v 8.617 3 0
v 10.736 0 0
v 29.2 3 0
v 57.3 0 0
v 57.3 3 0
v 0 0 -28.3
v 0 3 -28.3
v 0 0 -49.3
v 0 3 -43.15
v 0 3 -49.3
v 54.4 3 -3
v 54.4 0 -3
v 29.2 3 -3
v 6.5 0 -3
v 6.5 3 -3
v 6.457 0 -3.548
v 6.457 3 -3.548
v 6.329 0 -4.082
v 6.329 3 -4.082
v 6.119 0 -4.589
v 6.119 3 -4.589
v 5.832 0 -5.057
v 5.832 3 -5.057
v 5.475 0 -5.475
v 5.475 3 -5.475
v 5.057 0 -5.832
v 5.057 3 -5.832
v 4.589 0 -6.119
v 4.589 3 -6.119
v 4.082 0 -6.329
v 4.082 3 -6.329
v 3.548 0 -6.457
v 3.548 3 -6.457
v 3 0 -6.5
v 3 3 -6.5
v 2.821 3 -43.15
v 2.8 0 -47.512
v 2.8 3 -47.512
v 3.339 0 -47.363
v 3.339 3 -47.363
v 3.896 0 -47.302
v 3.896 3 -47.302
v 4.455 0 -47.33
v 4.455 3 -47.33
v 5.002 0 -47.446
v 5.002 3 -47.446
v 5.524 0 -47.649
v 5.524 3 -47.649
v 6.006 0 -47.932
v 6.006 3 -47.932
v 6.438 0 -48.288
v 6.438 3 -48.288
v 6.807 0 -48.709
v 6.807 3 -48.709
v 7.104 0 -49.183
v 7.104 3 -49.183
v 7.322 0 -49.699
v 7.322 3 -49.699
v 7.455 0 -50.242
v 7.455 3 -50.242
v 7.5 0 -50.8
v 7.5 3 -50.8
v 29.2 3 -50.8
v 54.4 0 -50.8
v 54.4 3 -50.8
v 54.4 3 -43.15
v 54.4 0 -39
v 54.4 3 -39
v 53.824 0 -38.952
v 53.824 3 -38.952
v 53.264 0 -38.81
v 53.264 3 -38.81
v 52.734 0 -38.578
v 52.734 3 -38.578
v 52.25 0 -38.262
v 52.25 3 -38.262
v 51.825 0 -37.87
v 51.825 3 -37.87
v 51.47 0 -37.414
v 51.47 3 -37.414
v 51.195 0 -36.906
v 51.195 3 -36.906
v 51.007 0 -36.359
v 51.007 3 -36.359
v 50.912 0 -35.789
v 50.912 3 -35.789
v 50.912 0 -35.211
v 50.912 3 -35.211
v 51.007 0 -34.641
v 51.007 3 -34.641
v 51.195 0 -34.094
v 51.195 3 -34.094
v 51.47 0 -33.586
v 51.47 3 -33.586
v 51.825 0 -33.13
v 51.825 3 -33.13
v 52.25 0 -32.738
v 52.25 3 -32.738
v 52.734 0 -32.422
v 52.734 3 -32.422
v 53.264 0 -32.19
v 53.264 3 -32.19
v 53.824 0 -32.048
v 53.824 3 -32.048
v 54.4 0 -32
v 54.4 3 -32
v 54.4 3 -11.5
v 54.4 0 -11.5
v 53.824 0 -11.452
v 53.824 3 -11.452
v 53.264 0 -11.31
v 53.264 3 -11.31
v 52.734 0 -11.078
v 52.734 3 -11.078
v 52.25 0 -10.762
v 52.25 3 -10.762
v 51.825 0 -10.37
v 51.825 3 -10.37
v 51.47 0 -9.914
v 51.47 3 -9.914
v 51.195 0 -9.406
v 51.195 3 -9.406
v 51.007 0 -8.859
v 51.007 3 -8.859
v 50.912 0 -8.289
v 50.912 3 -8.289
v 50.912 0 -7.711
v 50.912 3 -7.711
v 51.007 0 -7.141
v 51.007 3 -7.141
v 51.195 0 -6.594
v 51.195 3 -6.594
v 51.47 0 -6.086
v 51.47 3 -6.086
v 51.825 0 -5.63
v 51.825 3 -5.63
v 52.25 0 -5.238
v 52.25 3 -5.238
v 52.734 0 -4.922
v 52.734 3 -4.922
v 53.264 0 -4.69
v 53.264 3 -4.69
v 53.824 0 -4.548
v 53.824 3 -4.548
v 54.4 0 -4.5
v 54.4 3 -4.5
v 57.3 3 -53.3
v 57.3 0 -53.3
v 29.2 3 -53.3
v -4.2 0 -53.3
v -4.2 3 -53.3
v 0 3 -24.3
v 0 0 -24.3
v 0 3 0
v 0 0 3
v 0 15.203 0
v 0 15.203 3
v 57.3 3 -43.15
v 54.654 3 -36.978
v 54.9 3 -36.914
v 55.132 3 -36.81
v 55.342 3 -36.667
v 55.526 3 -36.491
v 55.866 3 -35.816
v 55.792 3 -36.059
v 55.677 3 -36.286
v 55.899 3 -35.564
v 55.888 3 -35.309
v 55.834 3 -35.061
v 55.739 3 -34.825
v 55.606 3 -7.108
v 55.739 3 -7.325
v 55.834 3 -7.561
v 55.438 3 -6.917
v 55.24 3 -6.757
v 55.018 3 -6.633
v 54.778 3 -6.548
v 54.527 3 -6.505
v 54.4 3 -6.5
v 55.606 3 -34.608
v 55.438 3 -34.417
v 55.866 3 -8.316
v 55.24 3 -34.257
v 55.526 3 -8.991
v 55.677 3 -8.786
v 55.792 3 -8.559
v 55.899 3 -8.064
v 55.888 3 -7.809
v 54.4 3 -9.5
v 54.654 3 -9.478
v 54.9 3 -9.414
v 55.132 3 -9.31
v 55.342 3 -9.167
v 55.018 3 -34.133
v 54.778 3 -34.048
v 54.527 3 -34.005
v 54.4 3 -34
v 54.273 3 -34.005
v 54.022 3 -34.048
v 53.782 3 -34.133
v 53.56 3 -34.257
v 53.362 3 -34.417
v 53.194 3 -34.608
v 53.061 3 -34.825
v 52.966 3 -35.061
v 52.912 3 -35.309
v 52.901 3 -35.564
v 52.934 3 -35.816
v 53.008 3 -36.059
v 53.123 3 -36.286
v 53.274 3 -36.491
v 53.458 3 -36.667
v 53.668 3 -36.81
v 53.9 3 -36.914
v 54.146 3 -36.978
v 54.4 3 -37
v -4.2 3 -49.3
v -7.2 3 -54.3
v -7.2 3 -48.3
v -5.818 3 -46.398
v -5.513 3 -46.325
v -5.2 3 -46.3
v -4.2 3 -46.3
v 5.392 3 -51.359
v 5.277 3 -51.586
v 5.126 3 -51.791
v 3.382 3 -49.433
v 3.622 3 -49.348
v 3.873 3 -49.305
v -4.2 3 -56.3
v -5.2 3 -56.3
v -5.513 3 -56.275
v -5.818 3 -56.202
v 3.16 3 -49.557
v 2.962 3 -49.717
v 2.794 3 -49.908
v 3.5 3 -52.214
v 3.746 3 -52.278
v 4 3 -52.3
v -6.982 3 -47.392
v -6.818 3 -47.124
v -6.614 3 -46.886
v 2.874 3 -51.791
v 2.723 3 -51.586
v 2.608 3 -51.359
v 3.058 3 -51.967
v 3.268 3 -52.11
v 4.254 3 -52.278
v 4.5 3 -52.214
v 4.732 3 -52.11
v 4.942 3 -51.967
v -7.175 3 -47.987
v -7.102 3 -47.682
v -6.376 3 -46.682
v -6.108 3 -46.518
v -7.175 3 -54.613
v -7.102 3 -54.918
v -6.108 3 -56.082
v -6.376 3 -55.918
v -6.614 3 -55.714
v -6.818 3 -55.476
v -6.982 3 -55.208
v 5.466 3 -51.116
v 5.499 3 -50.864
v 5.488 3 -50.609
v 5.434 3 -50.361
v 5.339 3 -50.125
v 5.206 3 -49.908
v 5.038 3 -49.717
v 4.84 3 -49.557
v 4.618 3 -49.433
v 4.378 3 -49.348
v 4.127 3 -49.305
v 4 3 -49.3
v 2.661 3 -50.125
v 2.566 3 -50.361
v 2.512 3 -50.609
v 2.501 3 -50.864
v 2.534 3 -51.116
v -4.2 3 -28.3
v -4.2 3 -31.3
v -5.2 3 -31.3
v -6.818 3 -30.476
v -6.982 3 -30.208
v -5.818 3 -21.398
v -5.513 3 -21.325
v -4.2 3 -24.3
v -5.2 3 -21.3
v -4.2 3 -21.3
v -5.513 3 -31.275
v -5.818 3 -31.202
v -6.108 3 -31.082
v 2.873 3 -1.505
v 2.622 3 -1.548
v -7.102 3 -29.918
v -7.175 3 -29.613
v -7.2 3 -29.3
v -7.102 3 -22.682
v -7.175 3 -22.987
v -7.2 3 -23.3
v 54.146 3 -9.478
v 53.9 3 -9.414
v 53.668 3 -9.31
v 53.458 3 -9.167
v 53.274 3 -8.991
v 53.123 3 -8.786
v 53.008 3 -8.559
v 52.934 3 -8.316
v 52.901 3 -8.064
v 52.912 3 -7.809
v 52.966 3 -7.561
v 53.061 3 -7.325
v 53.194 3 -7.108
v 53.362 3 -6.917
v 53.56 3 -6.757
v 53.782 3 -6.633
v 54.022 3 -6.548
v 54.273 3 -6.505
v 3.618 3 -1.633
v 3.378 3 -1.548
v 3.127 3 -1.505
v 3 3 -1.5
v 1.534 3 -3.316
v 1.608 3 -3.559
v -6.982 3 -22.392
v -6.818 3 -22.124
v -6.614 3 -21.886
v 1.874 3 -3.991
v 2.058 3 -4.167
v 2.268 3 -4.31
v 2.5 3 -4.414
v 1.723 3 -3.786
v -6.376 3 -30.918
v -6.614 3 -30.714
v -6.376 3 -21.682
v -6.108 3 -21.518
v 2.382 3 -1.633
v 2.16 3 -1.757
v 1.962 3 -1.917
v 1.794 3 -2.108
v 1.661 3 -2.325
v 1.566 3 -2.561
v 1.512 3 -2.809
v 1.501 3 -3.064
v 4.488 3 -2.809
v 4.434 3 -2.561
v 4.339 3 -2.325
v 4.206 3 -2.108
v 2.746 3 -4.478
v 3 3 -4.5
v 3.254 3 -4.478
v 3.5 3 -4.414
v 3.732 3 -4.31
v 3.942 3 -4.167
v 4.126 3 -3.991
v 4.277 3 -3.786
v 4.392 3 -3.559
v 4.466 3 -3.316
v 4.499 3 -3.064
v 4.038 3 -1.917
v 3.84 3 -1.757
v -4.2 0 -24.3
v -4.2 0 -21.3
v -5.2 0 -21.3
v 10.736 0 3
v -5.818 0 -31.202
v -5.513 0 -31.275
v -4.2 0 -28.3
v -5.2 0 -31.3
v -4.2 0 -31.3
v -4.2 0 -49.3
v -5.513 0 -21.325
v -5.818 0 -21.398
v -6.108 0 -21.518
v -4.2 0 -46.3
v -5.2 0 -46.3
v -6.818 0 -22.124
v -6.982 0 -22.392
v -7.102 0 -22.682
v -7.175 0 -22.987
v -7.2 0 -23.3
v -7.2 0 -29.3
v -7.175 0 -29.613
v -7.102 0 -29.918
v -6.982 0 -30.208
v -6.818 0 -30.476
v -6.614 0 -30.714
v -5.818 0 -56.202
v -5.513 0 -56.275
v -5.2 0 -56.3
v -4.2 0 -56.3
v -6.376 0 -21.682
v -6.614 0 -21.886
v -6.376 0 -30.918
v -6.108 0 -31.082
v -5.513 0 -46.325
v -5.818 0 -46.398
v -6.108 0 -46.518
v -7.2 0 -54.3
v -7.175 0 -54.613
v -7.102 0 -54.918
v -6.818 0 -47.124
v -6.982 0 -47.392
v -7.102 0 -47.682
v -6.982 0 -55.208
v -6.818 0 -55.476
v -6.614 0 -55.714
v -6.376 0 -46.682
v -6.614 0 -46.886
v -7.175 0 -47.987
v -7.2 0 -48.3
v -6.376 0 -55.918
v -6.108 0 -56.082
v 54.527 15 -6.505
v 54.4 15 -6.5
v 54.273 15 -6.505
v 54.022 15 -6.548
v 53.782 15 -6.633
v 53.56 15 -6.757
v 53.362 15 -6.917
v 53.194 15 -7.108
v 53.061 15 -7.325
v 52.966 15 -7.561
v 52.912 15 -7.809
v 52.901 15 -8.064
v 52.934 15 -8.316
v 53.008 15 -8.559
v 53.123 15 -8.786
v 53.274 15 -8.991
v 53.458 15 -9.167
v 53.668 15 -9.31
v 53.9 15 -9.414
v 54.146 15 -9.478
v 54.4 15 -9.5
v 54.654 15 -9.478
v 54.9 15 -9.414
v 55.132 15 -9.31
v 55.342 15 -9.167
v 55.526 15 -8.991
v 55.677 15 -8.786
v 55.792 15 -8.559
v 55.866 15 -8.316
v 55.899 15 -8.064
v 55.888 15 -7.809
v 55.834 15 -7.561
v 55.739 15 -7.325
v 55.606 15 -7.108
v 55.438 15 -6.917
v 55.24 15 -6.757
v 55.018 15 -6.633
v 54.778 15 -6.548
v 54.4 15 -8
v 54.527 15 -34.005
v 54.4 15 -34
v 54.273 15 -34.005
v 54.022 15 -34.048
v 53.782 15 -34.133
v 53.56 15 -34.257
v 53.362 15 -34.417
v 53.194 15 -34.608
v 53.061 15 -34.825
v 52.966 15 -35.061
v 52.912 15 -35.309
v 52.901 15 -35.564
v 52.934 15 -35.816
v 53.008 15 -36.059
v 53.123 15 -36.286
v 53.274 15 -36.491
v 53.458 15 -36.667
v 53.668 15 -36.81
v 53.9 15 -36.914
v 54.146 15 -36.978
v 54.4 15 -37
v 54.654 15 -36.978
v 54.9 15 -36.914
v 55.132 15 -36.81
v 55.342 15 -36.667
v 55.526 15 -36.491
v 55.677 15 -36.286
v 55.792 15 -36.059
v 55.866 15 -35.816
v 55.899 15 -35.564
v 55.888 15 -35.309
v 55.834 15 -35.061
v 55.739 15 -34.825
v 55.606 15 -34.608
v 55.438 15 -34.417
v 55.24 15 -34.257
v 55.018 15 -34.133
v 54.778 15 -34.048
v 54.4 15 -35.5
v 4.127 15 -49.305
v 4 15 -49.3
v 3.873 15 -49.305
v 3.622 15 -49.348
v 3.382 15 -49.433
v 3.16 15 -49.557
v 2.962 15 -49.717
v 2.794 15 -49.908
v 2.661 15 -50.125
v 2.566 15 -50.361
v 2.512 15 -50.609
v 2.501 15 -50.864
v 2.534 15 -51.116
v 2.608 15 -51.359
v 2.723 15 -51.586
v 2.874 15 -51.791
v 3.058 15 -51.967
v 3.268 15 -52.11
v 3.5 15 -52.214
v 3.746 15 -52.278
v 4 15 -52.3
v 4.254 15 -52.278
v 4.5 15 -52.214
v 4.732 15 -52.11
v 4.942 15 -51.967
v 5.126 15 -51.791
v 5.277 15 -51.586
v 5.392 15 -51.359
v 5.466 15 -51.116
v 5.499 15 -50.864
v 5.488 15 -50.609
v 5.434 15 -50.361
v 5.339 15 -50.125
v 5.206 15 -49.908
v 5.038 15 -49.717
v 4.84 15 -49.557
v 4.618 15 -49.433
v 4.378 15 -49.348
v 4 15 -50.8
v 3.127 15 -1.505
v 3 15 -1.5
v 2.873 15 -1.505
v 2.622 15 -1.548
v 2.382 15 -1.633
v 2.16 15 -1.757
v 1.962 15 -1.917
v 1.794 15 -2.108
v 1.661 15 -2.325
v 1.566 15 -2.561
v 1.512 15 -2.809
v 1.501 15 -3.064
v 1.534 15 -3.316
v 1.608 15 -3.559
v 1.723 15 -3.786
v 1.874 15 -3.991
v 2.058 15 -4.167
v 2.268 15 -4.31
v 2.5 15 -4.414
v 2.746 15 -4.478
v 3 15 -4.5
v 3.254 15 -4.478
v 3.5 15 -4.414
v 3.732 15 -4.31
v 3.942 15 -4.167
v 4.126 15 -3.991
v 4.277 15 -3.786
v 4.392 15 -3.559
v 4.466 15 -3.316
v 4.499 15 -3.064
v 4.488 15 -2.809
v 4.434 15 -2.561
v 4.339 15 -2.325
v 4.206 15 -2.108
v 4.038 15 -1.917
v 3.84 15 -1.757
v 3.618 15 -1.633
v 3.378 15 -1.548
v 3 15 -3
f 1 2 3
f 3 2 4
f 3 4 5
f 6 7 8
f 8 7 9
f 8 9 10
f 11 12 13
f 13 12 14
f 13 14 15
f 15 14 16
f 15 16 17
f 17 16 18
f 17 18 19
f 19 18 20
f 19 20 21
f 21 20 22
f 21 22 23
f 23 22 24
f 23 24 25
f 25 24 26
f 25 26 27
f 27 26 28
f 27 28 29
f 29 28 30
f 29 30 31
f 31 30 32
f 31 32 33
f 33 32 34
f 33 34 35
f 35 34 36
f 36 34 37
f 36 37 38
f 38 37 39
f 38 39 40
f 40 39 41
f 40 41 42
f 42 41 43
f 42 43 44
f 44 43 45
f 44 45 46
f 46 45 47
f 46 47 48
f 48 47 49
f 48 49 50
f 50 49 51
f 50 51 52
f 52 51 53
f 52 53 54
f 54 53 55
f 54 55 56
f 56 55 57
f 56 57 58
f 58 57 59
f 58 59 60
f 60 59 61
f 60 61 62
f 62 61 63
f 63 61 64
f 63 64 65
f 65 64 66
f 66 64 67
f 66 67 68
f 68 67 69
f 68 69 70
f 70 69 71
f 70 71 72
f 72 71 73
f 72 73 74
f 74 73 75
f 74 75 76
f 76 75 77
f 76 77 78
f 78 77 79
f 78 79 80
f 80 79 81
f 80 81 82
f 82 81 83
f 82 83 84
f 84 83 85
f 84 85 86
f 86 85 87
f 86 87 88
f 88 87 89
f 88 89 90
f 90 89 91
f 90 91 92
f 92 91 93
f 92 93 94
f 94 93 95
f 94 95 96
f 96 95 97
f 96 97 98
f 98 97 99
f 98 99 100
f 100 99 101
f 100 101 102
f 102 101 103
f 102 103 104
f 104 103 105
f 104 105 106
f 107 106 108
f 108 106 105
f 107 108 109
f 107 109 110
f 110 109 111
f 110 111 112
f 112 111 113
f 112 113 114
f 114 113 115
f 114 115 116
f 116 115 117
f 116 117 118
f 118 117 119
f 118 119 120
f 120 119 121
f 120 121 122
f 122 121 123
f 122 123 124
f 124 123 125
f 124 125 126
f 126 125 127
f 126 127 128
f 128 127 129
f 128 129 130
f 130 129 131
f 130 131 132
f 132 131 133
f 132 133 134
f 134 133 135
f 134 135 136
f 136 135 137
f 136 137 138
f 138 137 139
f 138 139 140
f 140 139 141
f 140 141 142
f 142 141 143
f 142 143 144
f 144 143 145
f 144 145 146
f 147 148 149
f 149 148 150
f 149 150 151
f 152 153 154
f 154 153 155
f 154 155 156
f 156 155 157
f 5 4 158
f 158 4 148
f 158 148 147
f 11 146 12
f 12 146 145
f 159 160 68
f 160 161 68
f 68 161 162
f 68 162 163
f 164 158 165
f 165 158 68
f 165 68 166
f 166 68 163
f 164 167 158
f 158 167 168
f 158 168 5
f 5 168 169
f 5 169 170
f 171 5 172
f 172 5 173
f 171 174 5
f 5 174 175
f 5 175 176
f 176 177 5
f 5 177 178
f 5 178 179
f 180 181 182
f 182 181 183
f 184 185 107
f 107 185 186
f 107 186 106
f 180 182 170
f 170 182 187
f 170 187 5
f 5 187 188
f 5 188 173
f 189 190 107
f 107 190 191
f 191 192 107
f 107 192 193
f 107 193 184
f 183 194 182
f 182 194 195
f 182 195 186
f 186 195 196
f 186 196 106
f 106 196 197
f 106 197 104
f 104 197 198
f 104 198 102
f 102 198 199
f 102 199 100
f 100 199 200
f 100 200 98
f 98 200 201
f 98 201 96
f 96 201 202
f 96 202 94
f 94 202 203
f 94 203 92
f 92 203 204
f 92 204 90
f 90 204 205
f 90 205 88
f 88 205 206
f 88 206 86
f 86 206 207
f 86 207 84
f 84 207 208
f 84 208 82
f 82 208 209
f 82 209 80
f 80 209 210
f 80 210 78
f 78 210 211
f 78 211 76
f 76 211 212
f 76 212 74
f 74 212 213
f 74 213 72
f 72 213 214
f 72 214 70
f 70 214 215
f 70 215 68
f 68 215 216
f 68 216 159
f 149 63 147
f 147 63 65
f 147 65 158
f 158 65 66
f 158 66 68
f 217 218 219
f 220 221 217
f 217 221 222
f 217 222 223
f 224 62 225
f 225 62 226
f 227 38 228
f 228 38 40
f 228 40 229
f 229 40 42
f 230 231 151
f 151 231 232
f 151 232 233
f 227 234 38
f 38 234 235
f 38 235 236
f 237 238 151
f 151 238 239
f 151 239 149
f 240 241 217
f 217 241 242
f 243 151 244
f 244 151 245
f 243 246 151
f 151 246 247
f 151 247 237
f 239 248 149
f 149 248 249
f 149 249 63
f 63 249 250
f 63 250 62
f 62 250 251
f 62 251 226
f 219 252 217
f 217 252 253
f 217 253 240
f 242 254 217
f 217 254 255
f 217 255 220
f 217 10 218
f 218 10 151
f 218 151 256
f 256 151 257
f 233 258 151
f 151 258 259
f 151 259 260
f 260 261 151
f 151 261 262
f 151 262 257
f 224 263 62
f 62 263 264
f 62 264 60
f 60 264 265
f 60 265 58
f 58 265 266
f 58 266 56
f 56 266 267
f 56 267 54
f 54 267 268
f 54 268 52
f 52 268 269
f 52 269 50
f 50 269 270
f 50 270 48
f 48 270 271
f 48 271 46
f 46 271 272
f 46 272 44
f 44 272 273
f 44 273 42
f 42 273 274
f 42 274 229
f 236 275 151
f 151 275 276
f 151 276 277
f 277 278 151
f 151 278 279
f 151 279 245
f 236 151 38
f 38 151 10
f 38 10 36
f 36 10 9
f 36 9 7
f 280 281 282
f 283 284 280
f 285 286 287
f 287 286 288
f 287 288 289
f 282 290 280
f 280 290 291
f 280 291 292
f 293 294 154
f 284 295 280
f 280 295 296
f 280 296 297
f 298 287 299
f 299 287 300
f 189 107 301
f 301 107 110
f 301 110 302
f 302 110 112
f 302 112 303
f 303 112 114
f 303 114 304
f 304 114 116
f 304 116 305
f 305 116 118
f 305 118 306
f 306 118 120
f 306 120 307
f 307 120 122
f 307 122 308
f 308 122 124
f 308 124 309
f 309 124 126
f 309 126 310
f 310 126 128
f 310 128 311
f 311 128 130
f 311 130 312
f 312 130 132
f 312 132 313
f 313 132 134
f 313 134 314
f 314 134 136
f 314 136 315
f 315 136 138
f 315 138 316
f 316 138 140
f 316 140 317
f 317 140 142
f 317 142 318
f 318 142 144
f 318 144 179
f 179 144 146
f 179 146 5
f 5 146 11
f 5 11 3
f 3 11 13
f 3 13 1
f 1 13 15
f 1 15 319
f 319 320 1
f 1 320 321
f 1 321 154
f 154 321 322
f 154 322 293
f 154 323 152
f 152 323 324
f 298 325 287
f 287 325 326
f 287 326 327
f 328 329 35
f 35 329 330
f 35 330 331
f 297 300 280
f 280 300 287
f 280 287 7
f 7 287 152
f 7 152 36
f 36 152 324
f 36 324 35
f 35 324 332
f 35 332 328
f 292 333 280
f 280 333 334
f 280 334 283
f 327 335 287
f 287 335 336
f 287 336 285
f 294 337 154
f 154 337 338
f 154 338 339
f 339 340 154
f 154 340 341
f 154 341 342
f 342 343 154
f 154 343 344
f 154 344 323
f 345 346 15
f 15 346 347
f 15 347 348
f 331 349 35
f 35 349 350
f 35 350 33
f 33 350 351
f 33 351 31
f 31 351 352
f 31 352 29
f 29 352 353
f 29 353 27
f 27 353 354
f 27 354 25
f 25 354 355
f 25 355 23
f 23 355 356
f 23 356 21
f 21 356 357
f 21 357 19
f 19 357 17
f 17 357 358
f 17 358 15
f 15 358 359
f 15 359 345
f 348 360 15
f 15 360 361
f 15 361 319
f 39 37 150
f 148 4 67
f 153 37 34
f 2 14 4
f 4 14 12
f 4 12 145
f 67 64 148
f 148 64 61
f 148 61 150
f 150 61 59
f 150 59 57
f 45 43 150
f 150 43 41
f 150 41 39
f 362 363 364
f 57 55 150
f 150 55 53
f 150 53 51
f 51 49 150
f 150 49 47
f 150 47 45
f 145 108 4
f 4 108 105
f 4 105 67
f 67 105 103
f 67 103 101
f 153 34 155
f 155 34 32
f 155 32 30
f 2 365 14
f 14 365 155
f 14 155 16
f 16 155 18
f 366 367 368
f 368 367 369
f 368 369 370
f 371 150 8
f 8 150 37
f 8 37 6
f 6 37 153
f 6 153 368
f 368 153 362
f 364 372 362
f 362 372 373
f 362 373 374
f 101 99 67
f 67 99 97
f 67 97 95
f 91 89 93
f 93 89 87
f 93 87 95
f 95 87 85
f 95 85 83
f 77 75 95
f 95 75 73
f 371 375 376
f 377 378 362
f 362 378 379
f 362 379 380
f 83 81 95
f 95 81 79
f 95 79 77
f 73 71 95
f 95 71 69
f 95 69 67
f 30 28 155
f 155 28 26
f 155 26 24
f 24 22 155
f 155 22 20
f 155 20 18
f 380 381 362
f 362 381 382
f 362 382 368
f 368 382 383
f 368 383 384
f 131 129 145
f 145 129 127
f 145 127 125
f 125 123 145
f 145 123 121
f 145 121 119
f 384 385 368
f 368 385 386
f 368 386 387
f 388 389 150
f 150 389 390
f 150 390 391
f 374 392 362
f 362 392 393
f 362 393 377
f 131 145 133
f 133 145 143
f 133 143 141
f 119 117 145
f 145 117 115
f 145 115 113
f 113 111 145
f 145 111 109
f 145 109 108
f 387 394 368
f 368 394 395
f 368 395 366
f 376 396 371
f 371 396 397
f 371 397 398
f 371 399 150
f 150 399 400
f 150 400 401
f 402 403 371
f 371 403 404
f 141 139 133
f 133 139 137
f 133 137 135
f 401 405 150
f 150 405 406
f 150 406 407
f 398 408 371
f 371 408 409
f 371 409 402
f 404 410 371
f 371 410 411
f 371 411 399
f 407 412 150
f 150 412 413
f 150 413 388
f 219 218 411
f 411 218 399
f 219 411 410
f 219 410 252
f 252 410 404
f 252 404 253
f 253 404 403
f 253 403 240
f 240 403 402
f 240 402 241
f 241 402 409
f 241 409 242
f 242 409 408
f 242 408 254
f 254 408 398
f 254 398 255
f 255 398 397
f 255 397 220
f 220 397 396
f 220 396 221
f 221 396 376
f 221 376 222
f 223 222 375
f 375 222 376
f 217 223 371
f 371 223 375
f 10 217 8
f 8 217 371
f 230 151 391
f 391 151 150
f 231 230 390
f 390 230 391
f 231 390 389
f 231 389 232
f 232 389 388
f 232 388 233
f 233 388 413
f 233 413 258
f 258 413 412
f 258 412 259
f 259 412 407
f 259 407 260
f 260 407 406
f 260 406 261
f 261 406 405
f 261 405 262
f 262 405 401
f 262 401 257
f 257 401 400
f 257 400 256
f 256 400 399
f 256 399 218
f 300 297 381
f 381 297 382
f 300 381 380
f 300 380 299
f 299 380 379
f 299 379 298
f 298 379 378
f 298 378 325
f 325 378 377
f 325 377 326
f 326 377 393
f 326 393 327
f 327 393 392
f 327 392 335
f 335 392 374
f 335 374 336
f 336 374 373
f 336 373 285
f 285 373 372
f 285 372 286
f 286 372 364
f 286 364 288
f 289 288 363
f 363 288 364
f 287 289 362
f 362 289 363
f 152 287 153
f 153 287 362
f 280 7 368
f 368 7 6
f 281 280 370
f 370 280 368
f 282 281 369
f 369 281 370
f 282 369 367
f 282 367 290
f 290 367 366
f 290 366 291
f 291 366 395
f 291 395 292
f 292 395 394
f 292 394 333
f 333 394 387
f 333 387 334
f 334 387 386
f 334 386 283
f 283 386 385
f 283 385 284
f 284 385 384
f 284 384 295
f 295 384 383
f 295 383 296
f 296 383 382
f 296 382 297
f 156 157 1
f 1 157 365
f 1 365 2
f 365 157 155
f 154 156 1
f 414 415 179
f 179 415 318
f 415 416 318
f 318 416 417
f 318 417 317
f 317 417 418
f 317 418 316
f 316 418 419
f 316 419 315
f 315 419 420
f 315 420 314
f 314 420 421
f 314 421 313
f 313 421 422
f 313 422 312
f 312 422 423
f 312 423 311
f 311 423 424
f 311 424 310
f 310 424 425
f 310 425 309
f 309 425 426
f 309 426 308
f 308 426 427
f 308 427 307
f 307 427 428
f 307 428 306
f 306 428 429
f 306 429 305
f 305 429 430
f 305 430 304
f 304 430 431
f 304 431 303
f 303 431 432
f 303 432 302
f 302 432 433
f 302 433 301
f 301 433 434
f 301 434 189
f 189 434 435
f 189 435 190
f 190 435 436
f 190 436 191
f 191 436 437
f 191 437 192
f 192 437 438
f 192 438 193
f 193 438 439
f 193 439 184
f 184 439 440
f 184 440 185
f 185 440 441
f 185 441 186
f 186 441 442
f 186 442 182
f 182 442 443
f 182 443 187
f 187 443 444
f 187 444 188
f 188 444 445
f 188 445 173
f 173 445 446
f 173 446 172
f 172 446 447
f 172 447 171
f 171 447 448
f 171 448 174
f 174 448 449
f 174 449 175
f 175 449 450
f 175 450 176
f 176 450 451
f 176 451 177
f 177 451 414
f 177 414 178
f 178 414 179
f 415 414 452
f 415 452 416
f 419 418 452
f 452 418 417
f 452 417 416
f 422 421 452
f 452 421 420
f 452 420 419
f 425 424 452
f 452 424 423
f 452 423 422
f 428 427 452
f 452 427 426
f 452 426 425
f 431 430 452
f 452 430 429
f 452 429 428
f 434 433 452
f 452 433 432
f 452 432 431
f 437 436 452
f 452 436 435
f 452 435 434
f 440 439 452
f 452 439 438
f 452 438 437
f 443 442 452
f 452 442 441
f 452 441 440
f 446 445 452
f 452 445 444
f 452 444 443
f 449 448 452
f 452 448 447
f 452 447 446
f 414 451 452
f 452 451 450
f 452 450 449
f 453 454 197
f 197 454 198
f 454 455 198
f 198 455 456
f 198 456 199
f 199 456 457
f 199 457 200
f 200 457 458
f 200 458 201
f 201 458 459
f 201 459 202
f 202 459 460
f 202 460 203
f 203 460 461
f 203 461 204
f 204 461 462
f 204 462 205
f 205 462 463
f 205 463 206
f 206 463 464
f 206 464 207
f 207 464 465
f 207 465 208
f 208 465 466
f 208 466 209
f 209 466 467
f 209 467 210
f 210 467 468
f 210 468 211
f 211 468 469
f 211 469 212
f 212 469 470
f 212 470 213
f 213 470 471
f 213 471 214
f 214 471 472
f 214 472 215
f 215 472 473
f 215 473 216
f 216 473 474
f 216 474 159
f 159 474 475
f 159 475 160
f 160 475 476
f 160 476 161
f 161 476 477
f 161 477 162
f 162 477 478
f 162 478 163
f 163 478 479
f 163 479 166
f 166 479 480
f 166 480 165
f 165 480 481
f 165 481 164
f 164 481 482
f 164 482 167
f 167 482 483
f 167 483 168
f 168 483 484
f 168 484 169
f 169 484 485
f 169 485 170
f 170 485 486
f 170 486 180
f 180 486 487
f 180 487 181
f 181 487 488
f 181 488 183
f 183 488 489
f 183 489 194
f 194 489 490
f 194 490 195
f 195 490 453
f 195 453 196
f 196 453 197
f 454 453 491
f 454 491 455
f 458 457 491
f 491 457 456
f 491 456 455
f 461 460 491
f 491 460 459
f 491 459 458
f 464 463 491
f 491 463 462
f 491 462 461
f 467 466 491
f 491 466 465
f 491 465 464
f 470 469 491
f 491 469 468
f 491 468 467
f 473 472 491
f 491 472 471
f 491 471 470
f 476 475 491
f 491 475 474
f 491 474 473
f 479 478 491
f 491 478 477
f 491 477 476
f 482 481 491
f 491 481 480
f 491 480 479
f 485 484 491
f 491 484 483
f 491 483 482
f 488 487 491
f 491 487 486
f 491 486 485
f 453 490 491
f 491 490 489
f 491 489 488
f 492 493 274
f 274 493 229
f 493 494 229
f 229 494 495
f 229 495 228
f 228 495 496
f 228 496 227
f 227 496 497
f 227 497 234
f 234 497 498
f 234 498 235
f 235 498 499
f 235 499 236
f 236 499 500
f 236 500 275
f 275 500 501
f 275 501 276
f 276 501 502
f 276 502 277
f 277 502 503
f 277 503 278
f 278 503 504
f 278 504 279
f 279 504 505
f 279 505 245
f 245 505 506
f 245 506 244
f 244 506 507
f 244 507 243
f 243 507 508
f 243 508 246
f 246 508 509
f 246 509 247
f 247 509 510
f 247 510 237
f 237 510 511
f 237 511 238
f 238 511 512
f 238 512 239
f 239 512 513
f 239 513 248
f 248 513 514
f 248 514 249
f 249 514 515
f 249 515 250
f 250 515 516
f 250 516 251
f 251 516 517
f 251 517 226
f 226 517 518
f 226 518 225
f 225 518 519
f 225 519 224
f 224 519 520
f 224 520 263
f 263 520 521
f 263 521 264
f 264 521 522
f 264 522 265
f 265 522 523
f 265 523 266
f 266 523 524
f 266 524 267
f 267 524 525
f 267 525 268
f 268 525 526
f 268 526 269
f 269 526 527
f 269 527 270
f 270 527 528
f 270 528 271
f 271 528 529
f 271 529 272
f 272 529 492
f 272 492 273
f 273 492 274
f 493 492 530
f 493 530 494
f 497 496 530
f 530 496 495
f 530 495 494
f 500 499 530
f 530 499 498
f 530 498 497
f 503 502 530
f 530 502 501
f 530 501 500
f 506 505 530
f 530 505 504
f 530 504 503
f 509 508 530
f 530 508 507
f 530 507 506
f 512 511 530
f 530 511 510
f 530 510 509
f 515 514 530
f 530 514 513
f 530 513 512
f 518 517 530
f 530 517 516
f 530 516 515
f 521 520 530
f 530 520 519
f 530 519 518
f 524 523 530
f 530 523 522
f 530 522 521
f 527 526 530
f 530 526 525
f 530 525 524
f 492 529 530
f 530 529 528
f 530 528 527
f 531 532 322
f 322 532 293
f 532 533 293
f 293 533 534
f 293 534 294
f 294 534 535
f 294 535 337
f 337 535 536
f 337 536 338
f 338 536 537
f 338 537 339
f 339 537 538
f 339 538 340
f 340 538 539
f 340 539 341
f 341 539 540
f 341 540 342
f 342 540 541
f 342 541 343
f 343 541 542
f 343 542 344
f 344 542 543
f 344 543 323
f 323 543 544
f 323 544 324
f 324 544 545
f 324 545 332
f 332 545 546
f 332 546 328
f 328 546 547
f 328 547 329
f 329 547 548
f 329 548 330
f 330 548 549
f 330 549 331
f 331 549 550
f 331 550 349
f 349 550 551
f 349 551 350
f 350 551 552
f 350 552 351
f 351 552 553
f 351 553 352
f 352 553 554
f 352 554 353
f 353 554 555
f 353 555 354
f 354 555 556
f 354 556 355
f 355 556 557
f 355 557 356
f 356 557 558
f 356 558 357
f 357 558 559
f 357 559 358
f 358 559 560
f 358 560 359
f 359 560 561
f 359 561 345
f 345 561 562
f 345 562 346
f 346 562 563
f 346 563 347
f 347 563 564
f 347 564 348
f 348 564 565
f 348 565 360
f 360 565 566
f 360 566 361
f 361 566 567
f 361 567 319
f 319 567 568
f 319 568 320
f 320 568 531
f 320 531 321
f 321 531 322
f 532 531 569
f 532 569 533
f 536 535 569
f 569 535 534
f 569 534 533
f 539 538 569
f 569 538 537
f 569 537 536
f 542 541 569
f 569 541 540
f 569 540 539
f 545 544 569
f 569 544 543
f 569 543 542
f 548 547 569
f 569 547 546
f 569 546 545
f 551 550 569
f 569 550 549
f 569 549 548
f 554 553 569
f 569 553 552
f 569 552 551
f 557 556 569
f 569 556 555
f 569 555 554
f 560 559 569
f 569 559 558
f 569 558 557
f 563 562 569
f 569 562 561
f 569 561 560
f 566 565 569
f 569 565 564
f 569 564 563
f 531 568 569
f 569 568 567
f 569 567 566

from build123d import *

# Parameters (mm, degrees)
SKETCH1_R           = 1.5
BOSS_EXTRUDE1_DEPTH = 3
BOSS_EXTRUDE2_DEPTH = 3
LPATTERN1_COUNT     = 2
LPATTERN1_PITCH     = 25
BOSS_EXTRUDE3_DEPTH = 3
SKETCH1_4_R         = 1.5
BOSS_EXTRUDE4_DEPTH = 15


with BuildPart() as part:
    # Sketch1 → Boss-Extrude1 (new body)
    with BuildSketch(Plane(origin=(0, 0, 0), x_dir=(1, 0, 0), z_dir=(0, 1, 0))):
        Polygon((0, 49.3), (0, 0), (57.3, 0), (57.3, 53.3), (0, 53.3), (0, 51.3), align=None)
        with Locations((3, 3)):
            Circle(SKETCH1_R, mode=Mode.SUBTRACT)
        with Locations((54.4, 8)):
            Circle(SKETCH1_R, mode=Mode.SUBTRACT)
        with BuildLine():
            ThreePointArc((6.5, 3), (5.474873734, 5.474873734), (3, 6.5))
            Line((3, 6.5), (2.8, 47.512143555))
            ThreePointArc((2.8, 47.512143555), (6.006240265, 47.93207392), (7.5, 50.8))
            Line((7.5, 50.8), (54.4, 50.8))
            Line((54.4, 50.8), (54.4, 39))
            ThreePointArc((54.4, 39), (50.9, 35.5), (54.4, 32))
            Line((54.4, 32), (54.4, 11.5))
            ThreePointArc((54.4, 11.5), (50.9, 8), (54.4, 4.5))
            Line((54.4, 4.5), (54.4, 3))
            Line((54.4, 3), (6.5, 3))
        make_face(mode=Mode.SUBTRACT)
        with Locations((4, 50.8)):
            Circle(SKETCH1_R, mode=Mode.SUBTRACT)
        with Locations((54.4, 35.5)):
            Circle(SKETCH1_R, mode=Mode.SUBTRACT)
    extrude(amount=BOSS_EXTRUDE1_DEPTH)

    # Sketch1<3> → Boss-Extrude2 (add)
    with BuildSketch(Plane(origin=(0, 0, 0), x_dir=(1, 0, 0), z_dir=(0, 1, 0))):
        with BuildLine():
            Line((-4.2, 49.3), (0, 49.3))
            Line((0, 49.3), (0, 51.3))
            Line((0, 51.3), (0, 53.3))
            Line((0, 53.3), (-4.2, 53.3))
            Line((-4.2, 53.3), (-4.2, 56.3))
            Line((-4.2, 56.3), (-5.2, 56.3))
            ThreePointArc((-5.2, 56.3), (-6.614213562, 55.714213562), (-7.2, 54.3))
            Line((-7.2, 54.3), (-7.2, 48.3))
            ThreePointArc((-7.2, 48.3), (-6.614213562, 46.885786438), (-5.2, 46.3))
            Line((-5.2, 46.3), (-4.2, 46.3))
            Line((-4.2, 46.3), (-4.2, 49.3))
        make_face()
    boss_extrude2 = extrude(amount=BOSS_EXTRUDE2_DEPTH)

    # LPattern1: Boss-Extrude2 ×2
    with Locations(*[(0, 0, i * LPATTERN1_PITCH) for i in range(1, LPATTERN1_COUNT)]):
        add(boss_extrude2)

    # Sketch2 → Boss-Extrude3 (add)
    with BuildSketch(Plane.XY):
        Polygon((0, 0), (0, 15.203282646), (10.735764429, 0), align=None)
    extrude(amount=BOSS_EXTRUDE3_DEPTH)

    # Sketch1<4> → Boss-Extrude4 (add)
    with BuildSketch(Plane(origin=(0, 0, 0), x_dir=(1, 0, 0), z_dir=(0, 1, 0))):
        with Locations((4, 50.8)):
            Circle(SKETCH1_4_R)
        with Locations((54.4, 35.5)):
            Circle(SKETCH1_4_R)
        with Locations((54.4, 8)):
            Circle(SKETCH1_4_R)
        with Locations((3, 3)):
            Circle(SKETCH1_4_R)
    extrude(amount=BOSS_EXTRUDE4_DEPTH)


solid = part.part
